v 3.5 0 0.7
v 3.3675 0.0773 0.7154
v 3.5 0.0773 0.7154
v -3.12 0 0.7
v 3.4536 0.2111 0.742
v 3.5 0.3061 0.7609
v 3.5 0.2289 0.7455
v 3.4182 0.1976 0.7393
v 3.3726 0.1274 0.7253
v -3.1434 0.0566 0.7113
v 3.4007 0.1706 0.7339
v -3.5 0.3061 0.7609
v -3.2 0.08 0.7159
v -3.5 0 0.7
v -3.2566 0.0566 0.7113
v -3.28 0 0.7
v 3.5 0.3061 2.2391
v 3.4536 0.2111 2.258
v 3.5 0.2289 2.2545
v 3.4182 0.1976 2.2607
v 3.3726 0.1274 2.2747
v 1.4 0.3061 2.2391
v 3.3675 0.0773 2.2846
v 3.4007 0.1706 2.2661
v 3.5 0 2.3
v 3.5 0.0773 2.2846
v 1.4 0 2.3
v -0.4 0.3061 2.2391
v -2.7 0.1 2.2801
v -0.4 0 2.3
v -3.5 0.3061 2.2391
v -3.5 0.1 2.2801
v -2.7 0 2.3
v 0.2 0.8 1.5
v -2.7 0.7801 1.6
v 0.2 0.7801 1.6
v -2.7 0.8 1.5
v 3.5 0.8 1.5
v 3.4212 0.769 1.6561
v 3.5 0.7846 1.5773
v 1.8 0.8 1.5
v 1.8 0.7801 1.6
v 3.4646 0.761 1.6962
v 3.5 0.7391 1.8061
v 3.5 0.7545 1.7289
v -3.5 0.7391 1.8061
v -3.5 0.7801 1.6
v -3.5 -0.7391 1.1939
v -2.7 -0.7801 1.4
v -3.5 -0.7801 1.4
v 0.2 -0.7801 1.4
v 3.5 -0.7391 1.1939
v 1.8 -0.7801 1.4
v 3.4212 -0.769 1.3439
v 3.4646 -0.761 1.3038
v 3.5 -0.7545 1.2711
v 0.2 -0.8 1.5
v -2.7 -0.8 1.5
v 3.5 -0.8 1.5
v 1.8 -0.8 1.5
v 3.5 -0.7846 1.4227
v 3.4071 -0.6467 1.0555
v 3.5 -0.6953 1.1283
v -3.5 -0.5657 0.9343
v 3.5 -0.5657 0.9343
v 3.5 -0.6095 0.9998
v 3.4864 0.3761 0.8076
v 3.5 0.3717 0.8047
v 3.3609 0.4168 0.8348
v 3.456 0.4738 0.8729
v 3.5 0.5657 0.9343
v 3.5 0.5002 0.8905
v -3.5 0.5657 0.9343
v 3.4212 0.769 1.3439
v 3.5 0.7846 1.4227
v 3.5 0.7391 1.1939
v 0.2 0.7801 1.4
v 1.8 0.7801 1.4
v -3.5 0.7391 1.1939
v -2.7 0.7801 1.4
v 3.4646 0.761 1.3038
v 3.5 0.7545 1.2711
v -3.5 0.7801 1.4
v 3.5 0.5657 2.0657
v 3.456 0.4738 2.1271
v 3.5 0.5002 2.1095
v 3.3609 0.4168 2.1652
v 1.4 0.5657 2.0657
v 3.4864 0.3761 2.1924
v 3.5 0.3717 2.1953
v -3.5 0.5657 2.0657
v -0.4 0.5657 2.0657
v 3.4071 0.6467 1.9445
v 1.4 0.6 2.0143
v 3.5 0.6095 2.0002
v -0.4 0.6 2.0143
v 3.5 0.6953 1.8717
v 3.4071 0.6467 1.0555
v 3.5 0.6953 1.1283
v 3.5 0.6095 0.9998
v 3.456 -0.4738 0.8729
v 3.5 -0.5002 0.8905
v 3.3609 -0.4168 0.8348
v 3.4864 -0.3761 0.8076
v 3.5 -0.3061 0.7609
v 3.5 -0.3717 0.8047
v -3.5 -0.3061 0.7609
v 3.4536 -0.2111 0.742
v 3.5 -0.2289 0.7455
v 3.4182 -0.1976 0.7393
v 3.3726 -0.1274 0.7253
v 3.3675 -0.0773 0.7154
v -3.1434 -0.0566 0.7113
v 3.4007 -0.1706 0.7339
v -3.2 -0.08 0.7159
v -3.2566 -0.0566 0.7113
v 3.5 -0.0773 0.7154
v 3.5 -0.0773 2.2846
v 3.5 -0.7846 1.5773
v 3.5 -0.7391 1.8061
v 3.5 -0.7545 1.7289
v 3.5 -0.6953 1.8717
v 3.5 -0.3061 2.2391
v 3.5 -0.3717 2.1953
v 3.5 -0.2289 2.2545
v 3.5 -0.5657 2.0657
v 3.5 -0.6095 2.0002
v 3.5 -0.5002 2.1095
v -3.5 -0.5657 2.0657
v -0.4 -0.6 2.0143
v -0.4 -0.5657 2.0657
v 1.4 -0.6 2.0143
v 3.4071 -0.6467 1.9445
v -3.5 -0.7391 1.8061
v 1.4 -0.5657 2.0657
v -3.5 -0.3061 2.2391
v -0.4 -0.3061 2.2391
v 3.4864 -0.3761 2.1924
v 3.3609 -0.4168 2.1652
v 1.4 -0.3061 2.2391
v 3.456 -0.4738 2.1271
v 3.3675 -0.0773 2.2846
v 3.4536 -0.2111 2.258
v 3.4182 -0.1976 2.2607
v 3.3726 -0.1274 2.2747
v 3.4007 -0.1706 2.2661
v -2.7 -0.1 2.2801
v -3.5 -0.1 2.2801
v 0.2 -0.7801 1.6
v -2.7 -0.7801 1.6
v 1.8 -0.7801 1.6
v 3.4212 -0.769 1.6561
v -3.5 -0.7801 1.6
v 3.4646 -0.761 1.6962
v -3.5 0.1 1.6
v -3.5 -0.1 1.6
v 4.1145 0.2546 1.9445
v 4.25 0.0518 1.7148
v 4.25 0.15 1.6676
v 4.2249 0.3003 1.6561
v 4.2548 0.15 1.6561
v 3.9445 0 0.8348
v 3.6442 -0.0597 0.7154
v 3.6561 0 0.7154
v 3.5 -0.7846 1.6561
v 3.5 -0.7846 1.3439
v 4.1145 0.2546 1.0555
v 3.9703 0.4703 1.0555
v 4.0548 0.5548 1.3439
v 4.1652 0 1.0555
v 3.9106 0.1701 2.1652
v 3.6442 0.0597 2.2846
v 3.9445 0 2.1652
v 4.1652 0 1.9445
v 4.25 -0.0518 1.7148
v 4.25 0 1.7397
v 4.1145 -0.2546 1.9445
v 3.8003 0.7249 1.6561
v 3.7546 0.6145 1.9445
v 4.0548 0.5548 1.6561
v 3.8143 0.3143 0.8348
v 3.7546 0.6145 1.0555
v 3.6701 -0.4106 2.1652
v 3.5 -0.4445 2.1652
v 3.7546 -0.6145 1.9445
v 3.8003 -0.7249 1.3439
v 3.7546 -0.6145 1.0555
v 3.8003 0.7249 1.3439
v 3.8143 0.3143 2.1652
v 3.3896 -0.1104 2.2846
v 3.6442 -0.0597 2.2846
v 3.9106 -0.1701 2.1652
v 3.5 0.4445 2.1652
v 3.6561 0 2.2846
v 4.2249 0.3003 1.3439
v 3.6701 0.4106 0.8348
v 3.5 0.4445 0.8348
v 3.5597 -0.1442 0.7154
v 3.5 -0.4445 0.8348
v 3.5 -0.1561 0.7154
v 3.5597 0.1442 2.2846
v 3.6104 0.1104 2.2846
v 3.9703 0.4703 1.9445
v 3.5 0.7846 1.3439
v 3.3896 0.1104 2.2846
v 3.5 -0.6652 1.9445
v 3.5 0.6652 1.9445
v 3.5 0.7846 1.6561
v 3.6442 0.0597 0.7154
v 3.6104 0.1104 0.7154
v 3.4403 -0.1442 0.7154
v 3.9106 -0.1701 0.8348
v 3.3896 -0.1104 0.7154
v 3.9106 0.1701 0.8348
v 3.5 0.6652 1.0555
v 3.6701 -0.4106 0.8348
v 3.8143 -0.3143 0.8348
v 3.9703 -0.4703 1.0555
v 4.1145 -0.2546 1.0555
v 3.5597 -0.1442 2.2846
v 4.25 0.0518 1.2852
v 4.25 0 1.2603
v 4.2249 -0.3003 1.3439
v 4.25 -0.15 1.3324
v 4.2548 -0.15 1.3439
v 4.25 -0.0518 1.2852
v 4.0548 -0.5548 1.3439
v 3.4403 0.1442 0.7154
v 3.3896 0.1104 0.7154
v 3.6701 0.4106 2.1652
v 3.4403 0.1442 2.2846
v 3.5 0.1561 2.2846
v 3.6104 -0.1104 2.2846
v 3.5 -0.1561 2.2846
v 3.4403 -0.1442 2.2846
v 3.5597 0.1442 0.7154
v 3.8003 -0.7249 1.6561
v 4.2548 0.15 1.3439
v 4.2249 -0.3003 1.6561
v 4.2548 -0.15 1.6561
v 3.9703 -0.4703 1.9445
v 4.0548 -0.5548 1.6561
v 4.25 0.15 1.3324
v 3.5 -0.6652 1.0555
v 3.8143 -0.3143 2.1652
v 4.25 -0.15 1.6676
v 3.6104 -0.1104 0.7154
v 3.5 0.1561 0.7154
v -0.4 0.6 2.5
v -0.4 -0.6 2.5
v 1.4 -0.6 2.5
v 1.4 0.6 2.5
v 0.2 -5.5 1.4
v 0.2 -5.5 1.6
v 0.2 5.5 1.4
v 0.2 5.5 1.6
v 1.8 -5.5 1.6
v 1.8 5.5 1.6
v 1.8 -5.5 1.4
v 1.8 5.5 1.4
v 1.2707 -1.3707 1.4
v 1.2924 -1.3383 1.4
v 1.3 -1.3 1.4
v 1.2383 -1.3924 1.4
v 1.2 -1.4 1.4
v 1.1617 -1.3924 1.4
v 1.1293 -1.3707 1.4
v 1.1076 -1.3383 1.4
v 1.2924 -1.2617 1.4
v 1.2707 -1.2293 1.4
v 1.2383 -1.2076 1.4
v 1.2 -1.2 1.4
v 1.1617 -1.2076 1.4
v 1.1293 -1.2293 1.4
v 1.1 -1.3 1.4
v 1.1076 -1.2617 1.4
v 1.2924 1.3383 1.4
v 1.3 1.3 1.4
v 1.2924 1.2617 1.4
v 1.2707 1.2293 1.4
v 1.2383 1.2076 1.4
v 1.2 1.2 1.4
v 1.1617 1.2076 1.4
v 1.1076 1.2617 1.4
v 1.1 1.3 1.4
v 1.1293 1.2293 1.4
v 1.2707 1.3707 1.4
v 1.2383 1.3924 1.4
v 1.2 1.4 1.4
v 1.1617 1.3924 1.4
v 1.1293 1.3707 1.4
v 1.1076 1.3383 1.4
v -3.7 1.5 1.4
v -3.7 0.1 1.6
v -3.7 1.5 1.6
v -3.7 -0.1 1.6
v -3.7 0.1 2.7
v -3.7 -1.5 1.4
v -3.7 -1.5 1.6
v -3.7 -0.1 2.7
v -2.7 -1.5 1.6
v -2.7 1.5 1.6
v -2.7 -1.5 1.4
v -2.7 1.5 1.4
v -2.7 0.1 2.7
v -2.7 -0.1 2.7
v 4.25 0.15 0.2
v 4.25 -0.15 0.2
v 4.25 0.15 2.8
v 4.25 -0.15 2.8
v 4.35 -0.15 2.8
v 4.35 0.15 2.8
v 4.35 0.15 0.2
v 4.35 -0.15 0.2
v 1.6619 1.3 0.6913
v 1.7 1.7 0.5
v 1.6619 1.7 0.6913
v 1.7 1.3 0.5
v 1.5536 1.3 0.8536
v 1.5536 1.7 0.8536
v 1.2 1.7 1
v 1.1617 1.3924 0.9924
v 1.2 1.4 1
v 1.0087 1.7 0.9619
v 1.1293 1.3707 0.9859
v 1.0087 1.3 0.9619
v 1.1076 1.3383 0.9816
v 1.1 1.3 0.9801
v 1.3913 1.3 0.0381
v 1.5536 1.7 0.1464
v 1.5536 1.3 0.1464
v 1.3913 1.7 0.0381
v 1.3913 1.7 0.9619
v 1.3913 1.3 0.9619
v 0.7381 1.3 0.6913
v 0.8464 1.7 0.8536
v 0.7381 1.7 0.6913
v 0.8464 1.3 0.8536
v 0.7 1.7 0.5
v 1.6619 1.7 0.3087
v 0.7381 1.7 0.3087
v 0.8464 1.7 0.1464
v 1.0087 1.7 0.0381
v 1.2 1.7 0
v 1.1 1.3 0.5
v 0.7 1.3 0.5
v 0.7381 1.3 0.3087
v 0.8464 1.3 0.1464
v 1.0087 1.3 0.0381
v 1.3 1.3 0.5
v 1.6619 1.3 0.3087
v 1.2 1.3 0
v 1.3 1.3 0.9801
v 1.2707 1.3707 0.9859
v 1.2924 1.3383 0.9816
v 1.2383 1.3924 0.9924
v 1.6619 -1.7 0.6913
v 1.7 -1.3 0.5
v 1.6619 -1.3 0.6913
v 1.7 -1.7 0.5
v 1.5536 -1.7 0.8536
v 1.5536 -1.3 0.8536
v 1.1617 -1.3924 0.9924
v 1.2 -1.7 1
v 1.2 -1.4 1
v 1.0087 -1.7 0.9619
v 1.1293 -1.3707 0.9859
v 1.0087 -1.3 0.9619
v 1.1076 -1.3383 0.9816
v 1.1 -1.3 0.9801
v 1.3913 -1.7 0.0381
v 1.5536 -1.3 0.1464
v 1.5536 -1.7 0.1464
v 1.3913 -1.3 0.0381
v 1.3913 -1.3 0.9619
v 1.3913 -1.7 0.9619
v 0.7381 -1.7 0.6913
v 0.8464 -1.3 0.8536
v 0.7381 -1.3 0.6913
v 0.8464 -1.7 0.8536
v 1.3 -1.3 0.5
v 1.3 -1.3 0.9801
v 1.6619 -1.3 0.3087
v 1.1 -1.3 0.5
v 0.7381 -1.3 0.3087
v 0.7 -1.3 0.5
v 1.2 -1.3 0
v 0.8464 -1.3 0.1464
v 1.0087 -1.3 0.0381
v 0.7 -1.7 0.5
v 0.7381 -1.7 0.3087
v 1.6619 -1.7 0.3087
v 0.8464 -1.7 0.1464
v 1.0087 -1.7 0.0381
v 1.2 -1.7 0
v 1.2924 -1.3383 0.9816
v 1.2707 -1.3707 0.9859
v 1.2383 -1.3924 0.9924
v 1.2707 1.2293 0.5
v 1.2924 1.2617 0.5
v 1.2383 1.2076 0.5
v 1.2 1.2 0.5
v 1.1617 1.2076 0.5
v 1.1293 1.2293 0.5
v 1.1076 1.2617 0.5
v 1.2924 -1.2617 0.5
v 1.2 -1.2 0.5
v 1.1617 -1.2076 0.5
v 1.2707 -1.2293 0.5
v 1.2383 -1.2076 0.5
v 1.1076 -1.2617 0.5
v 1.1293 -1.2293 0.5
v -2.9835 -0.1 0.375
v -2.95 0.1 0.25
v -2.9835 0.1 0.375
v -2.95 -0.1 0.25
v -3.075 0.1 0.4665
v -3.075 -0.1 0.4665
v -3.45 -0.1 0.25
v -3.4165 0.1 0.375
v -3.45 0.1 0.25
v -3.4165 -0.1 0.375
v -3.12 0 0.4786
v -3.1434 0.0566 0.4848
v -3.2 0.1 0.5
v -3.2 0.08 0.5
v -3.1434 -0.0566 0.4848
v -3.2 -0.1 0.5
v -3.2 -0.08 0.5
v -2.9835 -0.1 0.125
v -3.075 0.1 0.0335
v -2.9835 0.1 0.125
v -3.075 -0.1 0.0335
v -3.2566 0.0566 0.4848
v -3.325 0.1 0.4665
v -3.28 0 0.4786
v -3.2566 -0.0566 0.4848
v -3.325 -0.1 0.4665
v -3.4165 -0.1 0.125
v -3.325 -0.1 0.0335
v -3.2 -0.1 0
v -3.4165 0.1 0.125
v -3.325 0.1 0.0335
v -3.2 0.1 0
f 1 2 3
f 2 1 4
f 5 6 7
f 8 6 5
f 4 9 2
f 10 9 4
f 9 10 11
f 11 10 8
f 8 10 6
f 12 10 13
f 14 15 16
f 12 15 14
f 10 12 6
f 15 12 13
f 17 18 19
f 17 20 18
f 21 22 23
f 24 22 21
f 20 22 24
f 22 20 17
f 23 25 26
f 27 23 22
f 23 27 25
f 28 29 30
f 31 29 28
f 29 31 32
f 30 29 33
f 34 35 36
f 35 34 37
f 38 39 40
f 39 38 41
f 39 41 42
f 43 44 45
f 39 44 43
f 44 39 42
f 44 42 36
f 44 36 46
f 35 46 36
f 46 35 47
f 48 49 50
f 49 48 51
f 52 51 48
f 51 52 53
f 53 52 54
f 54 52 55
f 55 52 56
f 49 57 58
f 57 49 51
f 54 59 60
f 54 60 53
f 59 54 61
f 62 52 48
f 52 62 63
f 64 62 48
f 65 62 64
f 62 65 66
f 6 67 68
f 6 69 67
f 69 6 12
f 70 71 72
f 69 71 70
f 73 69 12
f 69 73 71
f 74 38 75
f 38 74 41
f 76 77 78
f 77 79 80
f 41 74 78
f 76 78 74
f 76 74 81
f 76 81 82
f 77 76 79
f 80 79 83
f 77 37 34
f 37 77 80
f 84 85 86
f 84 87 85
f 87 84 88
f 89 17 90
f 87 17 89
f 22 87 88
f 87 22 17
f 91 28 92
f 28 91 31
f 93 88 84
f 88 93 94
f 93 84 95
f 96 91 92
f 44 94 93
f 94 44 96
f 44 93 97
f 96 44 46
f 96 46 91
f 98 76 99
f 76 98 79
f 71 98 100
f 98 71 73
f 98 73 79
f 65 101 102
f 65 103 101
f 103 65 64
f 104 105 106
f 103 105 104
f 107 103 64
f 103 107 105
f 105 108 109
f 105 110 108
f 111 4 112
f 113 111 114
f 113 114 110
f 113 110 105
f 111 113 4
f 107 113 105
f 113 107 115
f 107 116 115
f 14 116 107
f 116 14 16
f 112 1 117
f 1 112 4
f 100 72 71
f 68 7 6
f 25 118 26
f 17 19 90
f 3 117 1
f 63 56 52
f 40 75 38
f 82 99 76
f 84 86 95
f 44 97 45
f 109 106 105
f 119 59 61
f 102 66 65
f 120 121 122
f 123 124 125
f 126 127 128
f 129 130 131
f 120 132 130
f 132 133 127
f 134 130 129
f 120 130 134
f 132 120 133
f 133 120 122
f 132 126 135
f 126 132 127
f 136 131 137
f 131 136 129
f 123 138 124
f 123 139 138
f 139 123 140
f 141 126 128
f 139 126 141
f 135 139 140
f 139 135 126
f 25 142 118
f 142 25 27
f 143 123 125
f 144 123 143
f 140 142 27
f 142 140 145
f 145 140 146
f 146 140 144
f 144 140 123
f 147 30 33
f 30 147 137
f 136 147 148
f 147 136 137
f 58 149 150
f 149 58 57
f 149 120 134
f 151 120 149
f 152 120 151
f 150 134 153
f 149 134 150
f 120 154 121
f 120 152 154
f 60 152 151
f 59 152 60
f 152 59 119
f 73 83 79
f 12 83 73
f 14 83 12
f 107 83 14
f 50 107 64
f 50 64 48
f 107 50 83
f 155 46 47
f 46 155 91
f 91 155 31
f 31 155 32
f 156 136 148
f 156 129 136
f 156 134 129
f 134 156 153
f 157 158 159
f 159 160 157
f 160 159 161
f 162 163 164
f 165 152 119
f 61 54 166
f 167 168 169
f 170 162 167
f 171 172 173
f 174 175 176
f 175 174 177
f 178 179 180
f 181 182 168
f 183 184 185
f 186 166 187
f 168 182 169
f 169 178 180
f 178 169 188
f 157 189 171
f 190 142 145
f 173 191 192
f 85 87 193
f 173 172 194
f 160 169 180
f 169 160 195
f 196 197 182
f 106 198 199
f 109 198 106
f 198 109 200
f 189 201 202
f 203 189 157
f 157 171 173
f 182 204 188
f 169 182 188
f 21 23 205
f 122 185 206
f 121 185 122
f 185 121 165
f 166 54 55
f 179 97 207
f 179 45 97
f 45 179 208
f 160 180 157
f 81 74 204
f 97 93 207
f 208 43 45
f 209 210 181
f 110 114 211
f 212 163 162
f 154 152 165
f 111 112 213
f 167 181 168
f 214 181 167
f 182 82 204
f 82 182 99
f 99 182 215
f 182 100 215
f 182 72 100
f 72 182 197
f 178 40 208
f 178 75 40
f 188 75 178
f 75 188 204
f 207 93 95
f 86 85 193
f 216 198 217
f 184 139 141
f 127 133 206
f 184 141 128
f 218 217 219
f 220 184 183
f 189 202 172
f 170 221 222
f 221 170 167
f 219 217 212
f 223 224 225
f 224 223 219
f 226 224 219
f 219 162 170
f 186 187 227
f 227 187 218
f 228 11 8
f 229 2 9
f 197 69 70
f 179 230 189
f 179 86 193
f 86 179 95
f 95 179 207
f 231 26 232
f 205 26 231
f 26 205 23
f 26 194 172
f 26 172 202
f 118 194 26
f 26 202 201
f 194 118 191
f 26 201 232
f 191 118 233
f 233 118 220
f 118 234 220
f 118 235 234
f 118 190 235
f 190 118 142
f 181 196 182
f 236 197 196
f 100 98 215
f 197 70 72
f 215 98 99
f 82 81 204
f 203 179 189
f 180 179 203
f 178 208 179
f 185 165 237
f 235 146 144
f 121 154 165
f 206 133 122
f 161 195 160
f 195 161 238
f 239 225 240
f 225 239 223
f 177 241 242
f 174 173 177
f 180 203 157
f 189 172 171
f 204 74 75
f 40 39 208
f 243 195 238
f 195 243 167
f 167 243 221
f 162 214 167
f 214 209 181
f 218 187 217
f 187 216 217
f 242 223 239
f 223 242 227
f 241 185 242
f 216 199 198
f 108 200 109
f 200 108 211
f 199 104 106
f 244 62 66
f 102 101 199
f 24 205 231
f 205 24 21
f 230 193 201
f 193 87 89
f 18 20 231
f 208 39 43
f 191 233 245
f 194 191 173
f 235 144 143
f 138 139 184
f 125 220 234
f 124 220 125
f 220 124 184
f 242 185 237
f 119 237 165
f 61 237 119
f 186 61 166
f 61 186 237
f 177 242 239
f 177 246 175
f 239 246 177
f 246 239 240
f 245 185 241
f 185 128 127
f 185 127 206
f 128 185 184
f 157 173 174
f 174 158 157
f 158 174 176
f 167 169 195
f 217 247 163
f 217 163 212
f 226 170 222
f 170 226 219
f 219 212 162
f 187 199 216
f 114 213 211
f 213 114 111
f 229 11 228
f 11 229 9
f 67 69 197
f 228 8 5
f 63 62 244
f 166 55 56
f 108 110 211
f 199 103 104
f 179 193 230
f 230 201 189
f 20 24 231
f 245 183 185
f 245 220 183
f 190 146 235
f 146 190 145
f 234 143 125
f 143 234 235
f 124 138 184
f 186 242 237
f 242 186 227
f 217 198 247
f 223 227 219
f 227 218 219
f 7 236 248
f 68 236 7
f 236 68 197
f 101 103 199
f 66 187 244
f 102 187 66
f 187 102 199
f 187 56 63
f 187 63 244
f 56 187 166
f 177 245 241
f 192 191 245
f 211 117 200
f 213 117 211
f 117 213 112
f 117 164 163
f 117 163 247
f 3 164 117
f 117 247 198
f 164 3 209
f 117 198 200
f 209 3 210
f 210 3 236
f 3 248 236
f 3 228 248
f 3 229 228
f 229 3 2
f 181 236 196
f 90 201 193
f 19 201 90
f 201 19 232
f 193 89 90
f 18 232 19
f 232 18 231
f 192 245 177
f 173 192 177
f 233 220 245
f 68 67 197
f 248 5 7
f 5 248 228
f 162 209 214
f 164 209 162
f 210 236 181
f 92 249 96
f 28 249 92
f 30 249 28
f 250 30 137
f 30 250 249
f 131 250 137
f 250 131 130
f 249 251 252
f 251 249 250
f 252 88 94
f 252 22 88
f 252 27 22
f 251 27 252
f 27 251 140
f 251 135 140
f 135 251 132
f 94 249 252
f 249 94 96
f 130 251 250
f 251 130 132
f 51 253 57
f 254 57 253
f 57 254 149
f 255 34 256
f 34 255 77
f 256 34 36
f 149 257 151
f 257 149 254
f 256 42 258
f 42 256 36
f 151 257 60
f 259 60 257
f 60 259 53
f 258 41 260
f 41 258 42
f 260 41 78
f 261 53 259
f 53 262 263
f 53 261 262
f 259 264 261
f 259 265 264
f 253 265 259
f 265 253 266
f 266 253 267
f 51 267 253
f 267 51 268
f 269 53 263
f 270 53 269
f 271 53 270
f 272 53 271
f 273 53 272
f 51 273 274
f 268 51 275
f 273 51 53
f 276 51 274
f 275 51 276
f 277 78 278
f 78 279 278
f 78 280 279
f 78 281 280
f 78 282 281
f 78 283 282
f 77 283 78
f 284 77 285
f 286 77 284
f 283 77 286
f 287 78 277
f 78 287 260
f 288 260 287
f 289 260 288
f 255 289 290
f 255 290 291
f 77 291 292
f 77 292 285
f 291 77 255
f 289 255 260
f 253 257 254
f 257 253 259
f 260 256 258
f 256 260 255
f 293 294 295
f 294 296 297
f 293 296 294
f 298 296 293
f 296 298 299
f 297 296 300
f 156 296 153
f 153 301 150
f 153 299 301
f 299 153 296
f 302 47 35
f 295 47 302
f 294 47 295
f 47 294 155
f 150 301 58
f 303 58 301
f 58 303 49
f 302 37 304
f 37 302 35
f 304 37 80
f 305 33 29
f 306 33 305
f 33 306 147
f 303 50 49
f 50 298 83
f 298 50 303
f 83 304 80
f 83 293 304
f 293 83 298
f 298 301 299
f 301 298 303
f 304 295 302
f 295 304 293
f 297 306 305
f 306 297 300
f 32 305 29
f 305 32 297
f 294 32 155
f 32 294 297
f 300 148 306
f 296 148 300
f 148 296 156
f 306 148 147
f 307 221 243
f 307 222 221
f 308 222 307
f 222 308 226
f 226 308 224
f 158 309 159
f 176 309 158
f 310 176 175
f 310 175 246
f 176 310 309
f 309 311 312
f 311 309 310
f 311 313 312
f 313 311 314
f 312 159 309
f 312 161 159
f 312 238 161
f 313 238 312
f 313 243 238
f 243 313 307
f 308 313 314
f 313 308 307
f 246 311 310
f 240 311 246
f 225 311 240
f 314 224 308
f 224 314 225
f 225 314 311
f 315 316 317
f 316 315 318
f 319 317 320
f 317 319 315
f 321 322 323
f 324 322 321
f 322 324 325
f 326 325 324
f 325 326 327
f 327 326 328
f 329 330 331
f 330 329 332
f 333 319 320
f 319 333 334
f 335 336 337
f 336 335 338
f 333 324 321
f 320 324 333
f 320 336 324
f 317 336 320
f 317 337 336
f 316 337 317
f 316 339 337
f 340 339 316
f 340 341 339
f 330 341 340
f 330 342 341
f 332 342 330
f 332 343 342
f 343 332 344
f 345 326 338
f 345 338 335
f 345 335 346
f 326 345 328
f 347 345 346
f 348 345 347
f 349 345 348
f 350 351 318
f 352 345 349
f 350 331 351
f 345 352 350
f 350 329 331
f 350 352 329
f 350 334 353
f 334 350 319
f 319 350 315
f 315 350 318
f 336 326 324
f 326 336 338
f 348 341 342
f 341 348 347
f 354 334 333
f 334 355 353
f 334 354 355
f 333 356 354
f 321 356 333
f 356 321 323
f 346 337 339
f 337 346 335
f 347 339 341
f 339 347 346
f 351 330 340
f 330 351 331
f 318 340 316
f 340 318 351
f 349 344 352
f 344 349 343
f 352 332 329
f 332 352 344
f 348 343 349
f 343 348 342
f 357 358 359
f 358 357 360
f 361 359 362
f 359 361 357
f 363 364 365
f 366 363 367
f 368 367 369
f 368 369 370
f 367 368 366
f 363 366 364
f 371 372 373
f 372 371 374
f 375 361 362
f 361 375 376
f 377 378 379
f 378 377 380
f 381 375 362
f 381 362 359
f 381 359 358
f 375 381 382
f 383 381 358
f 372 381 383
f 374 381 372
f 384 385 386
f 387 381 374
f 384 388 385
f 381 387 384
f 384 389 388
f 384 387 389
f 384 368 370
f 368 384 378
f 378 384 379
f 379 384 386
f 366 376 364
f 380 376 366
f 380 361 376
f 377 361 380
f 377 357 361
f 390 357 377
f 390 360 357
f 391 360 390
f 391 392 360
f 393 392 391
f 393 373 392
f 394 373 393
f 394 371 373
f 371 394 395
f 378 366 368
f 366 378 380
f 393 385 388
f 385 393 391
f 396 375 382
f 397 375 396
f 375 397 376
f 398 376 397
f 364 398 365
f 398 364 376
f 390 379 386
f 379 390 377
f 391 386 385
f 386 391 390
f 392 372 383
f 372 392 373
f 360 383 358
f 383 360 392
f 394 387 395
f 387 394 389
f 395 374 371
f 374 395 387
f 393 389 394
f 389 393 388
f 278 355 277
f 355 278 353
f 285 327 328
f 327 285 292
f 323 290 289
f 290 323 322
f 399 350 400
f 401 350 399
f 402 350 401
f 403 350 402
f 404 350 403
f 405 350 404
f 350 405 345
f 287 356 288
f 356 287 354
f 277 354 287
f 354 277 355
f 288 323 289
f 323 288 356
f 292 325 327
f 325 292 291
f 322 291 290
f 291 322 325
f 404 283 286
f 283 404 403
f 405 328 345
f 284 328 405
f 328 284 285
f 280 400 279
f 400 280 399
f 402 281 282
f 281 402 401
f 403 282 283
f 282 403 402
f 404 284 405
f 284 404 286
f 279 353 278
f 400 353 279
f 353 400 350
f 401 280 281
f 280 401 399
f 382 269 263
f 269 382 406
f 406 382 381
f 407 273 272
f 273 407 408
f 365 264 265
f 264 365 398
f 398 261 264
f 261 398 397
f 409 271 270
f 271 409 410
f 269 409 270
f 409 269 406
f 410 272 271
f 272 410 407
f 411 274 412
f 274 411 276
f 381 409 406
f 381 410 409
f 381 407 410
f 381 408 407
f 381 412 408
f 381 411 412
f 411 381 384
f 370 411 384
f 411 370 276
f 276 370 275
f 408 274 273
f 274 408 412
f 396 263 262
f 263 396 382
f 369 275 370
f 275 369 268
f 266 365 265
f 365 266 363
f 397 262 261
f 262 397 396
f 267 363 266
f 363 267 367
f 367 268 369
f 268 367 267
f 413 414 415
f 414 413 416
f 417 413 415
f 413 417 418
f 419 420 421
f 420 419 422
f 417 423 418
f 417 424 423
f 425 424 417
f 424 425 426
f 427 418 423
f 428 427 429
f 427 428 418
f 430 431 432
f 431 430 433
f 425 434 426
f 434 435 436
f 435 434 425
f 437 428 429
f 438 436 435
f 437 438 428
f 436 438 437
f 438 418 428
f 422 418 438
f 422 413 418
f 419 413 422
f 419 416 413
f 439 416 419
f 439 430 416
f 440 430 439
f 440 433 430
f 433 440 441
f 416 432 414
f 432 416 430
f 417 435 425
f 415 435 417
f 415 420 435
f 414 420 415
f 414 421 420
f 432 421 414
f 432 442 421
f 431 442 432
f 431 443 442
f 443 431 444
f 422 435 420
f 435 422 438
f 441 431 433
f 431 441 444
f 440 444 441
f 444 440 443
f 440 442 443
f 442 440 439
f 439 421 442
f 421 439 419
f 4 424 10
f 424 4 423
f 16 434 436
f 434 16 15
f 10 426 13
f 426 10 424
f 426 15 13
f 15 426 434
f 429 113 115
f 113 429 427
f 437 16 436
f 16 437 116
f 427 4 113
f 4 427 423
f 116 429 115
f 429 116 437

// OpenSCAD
// Single Engine Propeller Plane

$fn = 16;

module simple_plane() {
    color("White")
    translate([0, 0, 1.5])
    rotate([0, 90, 0])
    cylinder(h=7, r=0.8, center=true);

    //Spinner
    color("Red")
    translate([3.5, 0, 1.5])
    sphere(r=0.8);

    //Cockpit
    color("SkyBlue")
    translate([0.5, 0, 2.1])
    cube([1.8, 1.2, 0.8], center=true);

    //wings
    color("White")
    translate([1, 0, 1.5])
    cube([1.6, 11, 0.2], center=true);


    // Horiz Stab
    color("White")
    translate([-3.2, 0, 1.5])
    cube([1, 3, 0.2], center=true);

    // Vert Stab
    color("White")
    translate([-3.2, 0, 2.1])
    cube([1, 0.2, 1.2], center=true);

    // Propeller
    color("DarkGray")
    translate([4.3, 0, 1.5])
    cube([0.1, 0.3, 2.6], center=true); 
    
    // Main Wheels
    color("Black")
    translate([1.2, 1.5, 0.5])
    rotate([90, 0, 0])
    cylinder(h=0.4, r=0.5, center=true);

    color("Black")
    translate([1.2, -1.5, 0.5])
    rotate([90, 0, 0])
    cylinder(h=0.4, r=0.5, center=true);
    
    // Struts
    color("DarkGray")
    translate([1.2, 1.3, 1.0])
    cylinder(h=1.0, r=0.1, center=true);

    color("DarkGray")
    translate([1.2, -1.3, 1.0])
    cylinder(h=1.0, r=0.1, center=true);

    // Tail Wheel
    color("Black")
    translate([-3.2, 0, 0.25])
    rotate([90, 0, 0])
    cylinder(h=0.2, r=0.25, center=true, $fn=12);
    
    // Strut
    color("DarkGray")
    translate([-3.2, 0, 0.5])
    cylinder(h=0.5, r=0.08, center=true, $fn=8);
}




simple_plane();
